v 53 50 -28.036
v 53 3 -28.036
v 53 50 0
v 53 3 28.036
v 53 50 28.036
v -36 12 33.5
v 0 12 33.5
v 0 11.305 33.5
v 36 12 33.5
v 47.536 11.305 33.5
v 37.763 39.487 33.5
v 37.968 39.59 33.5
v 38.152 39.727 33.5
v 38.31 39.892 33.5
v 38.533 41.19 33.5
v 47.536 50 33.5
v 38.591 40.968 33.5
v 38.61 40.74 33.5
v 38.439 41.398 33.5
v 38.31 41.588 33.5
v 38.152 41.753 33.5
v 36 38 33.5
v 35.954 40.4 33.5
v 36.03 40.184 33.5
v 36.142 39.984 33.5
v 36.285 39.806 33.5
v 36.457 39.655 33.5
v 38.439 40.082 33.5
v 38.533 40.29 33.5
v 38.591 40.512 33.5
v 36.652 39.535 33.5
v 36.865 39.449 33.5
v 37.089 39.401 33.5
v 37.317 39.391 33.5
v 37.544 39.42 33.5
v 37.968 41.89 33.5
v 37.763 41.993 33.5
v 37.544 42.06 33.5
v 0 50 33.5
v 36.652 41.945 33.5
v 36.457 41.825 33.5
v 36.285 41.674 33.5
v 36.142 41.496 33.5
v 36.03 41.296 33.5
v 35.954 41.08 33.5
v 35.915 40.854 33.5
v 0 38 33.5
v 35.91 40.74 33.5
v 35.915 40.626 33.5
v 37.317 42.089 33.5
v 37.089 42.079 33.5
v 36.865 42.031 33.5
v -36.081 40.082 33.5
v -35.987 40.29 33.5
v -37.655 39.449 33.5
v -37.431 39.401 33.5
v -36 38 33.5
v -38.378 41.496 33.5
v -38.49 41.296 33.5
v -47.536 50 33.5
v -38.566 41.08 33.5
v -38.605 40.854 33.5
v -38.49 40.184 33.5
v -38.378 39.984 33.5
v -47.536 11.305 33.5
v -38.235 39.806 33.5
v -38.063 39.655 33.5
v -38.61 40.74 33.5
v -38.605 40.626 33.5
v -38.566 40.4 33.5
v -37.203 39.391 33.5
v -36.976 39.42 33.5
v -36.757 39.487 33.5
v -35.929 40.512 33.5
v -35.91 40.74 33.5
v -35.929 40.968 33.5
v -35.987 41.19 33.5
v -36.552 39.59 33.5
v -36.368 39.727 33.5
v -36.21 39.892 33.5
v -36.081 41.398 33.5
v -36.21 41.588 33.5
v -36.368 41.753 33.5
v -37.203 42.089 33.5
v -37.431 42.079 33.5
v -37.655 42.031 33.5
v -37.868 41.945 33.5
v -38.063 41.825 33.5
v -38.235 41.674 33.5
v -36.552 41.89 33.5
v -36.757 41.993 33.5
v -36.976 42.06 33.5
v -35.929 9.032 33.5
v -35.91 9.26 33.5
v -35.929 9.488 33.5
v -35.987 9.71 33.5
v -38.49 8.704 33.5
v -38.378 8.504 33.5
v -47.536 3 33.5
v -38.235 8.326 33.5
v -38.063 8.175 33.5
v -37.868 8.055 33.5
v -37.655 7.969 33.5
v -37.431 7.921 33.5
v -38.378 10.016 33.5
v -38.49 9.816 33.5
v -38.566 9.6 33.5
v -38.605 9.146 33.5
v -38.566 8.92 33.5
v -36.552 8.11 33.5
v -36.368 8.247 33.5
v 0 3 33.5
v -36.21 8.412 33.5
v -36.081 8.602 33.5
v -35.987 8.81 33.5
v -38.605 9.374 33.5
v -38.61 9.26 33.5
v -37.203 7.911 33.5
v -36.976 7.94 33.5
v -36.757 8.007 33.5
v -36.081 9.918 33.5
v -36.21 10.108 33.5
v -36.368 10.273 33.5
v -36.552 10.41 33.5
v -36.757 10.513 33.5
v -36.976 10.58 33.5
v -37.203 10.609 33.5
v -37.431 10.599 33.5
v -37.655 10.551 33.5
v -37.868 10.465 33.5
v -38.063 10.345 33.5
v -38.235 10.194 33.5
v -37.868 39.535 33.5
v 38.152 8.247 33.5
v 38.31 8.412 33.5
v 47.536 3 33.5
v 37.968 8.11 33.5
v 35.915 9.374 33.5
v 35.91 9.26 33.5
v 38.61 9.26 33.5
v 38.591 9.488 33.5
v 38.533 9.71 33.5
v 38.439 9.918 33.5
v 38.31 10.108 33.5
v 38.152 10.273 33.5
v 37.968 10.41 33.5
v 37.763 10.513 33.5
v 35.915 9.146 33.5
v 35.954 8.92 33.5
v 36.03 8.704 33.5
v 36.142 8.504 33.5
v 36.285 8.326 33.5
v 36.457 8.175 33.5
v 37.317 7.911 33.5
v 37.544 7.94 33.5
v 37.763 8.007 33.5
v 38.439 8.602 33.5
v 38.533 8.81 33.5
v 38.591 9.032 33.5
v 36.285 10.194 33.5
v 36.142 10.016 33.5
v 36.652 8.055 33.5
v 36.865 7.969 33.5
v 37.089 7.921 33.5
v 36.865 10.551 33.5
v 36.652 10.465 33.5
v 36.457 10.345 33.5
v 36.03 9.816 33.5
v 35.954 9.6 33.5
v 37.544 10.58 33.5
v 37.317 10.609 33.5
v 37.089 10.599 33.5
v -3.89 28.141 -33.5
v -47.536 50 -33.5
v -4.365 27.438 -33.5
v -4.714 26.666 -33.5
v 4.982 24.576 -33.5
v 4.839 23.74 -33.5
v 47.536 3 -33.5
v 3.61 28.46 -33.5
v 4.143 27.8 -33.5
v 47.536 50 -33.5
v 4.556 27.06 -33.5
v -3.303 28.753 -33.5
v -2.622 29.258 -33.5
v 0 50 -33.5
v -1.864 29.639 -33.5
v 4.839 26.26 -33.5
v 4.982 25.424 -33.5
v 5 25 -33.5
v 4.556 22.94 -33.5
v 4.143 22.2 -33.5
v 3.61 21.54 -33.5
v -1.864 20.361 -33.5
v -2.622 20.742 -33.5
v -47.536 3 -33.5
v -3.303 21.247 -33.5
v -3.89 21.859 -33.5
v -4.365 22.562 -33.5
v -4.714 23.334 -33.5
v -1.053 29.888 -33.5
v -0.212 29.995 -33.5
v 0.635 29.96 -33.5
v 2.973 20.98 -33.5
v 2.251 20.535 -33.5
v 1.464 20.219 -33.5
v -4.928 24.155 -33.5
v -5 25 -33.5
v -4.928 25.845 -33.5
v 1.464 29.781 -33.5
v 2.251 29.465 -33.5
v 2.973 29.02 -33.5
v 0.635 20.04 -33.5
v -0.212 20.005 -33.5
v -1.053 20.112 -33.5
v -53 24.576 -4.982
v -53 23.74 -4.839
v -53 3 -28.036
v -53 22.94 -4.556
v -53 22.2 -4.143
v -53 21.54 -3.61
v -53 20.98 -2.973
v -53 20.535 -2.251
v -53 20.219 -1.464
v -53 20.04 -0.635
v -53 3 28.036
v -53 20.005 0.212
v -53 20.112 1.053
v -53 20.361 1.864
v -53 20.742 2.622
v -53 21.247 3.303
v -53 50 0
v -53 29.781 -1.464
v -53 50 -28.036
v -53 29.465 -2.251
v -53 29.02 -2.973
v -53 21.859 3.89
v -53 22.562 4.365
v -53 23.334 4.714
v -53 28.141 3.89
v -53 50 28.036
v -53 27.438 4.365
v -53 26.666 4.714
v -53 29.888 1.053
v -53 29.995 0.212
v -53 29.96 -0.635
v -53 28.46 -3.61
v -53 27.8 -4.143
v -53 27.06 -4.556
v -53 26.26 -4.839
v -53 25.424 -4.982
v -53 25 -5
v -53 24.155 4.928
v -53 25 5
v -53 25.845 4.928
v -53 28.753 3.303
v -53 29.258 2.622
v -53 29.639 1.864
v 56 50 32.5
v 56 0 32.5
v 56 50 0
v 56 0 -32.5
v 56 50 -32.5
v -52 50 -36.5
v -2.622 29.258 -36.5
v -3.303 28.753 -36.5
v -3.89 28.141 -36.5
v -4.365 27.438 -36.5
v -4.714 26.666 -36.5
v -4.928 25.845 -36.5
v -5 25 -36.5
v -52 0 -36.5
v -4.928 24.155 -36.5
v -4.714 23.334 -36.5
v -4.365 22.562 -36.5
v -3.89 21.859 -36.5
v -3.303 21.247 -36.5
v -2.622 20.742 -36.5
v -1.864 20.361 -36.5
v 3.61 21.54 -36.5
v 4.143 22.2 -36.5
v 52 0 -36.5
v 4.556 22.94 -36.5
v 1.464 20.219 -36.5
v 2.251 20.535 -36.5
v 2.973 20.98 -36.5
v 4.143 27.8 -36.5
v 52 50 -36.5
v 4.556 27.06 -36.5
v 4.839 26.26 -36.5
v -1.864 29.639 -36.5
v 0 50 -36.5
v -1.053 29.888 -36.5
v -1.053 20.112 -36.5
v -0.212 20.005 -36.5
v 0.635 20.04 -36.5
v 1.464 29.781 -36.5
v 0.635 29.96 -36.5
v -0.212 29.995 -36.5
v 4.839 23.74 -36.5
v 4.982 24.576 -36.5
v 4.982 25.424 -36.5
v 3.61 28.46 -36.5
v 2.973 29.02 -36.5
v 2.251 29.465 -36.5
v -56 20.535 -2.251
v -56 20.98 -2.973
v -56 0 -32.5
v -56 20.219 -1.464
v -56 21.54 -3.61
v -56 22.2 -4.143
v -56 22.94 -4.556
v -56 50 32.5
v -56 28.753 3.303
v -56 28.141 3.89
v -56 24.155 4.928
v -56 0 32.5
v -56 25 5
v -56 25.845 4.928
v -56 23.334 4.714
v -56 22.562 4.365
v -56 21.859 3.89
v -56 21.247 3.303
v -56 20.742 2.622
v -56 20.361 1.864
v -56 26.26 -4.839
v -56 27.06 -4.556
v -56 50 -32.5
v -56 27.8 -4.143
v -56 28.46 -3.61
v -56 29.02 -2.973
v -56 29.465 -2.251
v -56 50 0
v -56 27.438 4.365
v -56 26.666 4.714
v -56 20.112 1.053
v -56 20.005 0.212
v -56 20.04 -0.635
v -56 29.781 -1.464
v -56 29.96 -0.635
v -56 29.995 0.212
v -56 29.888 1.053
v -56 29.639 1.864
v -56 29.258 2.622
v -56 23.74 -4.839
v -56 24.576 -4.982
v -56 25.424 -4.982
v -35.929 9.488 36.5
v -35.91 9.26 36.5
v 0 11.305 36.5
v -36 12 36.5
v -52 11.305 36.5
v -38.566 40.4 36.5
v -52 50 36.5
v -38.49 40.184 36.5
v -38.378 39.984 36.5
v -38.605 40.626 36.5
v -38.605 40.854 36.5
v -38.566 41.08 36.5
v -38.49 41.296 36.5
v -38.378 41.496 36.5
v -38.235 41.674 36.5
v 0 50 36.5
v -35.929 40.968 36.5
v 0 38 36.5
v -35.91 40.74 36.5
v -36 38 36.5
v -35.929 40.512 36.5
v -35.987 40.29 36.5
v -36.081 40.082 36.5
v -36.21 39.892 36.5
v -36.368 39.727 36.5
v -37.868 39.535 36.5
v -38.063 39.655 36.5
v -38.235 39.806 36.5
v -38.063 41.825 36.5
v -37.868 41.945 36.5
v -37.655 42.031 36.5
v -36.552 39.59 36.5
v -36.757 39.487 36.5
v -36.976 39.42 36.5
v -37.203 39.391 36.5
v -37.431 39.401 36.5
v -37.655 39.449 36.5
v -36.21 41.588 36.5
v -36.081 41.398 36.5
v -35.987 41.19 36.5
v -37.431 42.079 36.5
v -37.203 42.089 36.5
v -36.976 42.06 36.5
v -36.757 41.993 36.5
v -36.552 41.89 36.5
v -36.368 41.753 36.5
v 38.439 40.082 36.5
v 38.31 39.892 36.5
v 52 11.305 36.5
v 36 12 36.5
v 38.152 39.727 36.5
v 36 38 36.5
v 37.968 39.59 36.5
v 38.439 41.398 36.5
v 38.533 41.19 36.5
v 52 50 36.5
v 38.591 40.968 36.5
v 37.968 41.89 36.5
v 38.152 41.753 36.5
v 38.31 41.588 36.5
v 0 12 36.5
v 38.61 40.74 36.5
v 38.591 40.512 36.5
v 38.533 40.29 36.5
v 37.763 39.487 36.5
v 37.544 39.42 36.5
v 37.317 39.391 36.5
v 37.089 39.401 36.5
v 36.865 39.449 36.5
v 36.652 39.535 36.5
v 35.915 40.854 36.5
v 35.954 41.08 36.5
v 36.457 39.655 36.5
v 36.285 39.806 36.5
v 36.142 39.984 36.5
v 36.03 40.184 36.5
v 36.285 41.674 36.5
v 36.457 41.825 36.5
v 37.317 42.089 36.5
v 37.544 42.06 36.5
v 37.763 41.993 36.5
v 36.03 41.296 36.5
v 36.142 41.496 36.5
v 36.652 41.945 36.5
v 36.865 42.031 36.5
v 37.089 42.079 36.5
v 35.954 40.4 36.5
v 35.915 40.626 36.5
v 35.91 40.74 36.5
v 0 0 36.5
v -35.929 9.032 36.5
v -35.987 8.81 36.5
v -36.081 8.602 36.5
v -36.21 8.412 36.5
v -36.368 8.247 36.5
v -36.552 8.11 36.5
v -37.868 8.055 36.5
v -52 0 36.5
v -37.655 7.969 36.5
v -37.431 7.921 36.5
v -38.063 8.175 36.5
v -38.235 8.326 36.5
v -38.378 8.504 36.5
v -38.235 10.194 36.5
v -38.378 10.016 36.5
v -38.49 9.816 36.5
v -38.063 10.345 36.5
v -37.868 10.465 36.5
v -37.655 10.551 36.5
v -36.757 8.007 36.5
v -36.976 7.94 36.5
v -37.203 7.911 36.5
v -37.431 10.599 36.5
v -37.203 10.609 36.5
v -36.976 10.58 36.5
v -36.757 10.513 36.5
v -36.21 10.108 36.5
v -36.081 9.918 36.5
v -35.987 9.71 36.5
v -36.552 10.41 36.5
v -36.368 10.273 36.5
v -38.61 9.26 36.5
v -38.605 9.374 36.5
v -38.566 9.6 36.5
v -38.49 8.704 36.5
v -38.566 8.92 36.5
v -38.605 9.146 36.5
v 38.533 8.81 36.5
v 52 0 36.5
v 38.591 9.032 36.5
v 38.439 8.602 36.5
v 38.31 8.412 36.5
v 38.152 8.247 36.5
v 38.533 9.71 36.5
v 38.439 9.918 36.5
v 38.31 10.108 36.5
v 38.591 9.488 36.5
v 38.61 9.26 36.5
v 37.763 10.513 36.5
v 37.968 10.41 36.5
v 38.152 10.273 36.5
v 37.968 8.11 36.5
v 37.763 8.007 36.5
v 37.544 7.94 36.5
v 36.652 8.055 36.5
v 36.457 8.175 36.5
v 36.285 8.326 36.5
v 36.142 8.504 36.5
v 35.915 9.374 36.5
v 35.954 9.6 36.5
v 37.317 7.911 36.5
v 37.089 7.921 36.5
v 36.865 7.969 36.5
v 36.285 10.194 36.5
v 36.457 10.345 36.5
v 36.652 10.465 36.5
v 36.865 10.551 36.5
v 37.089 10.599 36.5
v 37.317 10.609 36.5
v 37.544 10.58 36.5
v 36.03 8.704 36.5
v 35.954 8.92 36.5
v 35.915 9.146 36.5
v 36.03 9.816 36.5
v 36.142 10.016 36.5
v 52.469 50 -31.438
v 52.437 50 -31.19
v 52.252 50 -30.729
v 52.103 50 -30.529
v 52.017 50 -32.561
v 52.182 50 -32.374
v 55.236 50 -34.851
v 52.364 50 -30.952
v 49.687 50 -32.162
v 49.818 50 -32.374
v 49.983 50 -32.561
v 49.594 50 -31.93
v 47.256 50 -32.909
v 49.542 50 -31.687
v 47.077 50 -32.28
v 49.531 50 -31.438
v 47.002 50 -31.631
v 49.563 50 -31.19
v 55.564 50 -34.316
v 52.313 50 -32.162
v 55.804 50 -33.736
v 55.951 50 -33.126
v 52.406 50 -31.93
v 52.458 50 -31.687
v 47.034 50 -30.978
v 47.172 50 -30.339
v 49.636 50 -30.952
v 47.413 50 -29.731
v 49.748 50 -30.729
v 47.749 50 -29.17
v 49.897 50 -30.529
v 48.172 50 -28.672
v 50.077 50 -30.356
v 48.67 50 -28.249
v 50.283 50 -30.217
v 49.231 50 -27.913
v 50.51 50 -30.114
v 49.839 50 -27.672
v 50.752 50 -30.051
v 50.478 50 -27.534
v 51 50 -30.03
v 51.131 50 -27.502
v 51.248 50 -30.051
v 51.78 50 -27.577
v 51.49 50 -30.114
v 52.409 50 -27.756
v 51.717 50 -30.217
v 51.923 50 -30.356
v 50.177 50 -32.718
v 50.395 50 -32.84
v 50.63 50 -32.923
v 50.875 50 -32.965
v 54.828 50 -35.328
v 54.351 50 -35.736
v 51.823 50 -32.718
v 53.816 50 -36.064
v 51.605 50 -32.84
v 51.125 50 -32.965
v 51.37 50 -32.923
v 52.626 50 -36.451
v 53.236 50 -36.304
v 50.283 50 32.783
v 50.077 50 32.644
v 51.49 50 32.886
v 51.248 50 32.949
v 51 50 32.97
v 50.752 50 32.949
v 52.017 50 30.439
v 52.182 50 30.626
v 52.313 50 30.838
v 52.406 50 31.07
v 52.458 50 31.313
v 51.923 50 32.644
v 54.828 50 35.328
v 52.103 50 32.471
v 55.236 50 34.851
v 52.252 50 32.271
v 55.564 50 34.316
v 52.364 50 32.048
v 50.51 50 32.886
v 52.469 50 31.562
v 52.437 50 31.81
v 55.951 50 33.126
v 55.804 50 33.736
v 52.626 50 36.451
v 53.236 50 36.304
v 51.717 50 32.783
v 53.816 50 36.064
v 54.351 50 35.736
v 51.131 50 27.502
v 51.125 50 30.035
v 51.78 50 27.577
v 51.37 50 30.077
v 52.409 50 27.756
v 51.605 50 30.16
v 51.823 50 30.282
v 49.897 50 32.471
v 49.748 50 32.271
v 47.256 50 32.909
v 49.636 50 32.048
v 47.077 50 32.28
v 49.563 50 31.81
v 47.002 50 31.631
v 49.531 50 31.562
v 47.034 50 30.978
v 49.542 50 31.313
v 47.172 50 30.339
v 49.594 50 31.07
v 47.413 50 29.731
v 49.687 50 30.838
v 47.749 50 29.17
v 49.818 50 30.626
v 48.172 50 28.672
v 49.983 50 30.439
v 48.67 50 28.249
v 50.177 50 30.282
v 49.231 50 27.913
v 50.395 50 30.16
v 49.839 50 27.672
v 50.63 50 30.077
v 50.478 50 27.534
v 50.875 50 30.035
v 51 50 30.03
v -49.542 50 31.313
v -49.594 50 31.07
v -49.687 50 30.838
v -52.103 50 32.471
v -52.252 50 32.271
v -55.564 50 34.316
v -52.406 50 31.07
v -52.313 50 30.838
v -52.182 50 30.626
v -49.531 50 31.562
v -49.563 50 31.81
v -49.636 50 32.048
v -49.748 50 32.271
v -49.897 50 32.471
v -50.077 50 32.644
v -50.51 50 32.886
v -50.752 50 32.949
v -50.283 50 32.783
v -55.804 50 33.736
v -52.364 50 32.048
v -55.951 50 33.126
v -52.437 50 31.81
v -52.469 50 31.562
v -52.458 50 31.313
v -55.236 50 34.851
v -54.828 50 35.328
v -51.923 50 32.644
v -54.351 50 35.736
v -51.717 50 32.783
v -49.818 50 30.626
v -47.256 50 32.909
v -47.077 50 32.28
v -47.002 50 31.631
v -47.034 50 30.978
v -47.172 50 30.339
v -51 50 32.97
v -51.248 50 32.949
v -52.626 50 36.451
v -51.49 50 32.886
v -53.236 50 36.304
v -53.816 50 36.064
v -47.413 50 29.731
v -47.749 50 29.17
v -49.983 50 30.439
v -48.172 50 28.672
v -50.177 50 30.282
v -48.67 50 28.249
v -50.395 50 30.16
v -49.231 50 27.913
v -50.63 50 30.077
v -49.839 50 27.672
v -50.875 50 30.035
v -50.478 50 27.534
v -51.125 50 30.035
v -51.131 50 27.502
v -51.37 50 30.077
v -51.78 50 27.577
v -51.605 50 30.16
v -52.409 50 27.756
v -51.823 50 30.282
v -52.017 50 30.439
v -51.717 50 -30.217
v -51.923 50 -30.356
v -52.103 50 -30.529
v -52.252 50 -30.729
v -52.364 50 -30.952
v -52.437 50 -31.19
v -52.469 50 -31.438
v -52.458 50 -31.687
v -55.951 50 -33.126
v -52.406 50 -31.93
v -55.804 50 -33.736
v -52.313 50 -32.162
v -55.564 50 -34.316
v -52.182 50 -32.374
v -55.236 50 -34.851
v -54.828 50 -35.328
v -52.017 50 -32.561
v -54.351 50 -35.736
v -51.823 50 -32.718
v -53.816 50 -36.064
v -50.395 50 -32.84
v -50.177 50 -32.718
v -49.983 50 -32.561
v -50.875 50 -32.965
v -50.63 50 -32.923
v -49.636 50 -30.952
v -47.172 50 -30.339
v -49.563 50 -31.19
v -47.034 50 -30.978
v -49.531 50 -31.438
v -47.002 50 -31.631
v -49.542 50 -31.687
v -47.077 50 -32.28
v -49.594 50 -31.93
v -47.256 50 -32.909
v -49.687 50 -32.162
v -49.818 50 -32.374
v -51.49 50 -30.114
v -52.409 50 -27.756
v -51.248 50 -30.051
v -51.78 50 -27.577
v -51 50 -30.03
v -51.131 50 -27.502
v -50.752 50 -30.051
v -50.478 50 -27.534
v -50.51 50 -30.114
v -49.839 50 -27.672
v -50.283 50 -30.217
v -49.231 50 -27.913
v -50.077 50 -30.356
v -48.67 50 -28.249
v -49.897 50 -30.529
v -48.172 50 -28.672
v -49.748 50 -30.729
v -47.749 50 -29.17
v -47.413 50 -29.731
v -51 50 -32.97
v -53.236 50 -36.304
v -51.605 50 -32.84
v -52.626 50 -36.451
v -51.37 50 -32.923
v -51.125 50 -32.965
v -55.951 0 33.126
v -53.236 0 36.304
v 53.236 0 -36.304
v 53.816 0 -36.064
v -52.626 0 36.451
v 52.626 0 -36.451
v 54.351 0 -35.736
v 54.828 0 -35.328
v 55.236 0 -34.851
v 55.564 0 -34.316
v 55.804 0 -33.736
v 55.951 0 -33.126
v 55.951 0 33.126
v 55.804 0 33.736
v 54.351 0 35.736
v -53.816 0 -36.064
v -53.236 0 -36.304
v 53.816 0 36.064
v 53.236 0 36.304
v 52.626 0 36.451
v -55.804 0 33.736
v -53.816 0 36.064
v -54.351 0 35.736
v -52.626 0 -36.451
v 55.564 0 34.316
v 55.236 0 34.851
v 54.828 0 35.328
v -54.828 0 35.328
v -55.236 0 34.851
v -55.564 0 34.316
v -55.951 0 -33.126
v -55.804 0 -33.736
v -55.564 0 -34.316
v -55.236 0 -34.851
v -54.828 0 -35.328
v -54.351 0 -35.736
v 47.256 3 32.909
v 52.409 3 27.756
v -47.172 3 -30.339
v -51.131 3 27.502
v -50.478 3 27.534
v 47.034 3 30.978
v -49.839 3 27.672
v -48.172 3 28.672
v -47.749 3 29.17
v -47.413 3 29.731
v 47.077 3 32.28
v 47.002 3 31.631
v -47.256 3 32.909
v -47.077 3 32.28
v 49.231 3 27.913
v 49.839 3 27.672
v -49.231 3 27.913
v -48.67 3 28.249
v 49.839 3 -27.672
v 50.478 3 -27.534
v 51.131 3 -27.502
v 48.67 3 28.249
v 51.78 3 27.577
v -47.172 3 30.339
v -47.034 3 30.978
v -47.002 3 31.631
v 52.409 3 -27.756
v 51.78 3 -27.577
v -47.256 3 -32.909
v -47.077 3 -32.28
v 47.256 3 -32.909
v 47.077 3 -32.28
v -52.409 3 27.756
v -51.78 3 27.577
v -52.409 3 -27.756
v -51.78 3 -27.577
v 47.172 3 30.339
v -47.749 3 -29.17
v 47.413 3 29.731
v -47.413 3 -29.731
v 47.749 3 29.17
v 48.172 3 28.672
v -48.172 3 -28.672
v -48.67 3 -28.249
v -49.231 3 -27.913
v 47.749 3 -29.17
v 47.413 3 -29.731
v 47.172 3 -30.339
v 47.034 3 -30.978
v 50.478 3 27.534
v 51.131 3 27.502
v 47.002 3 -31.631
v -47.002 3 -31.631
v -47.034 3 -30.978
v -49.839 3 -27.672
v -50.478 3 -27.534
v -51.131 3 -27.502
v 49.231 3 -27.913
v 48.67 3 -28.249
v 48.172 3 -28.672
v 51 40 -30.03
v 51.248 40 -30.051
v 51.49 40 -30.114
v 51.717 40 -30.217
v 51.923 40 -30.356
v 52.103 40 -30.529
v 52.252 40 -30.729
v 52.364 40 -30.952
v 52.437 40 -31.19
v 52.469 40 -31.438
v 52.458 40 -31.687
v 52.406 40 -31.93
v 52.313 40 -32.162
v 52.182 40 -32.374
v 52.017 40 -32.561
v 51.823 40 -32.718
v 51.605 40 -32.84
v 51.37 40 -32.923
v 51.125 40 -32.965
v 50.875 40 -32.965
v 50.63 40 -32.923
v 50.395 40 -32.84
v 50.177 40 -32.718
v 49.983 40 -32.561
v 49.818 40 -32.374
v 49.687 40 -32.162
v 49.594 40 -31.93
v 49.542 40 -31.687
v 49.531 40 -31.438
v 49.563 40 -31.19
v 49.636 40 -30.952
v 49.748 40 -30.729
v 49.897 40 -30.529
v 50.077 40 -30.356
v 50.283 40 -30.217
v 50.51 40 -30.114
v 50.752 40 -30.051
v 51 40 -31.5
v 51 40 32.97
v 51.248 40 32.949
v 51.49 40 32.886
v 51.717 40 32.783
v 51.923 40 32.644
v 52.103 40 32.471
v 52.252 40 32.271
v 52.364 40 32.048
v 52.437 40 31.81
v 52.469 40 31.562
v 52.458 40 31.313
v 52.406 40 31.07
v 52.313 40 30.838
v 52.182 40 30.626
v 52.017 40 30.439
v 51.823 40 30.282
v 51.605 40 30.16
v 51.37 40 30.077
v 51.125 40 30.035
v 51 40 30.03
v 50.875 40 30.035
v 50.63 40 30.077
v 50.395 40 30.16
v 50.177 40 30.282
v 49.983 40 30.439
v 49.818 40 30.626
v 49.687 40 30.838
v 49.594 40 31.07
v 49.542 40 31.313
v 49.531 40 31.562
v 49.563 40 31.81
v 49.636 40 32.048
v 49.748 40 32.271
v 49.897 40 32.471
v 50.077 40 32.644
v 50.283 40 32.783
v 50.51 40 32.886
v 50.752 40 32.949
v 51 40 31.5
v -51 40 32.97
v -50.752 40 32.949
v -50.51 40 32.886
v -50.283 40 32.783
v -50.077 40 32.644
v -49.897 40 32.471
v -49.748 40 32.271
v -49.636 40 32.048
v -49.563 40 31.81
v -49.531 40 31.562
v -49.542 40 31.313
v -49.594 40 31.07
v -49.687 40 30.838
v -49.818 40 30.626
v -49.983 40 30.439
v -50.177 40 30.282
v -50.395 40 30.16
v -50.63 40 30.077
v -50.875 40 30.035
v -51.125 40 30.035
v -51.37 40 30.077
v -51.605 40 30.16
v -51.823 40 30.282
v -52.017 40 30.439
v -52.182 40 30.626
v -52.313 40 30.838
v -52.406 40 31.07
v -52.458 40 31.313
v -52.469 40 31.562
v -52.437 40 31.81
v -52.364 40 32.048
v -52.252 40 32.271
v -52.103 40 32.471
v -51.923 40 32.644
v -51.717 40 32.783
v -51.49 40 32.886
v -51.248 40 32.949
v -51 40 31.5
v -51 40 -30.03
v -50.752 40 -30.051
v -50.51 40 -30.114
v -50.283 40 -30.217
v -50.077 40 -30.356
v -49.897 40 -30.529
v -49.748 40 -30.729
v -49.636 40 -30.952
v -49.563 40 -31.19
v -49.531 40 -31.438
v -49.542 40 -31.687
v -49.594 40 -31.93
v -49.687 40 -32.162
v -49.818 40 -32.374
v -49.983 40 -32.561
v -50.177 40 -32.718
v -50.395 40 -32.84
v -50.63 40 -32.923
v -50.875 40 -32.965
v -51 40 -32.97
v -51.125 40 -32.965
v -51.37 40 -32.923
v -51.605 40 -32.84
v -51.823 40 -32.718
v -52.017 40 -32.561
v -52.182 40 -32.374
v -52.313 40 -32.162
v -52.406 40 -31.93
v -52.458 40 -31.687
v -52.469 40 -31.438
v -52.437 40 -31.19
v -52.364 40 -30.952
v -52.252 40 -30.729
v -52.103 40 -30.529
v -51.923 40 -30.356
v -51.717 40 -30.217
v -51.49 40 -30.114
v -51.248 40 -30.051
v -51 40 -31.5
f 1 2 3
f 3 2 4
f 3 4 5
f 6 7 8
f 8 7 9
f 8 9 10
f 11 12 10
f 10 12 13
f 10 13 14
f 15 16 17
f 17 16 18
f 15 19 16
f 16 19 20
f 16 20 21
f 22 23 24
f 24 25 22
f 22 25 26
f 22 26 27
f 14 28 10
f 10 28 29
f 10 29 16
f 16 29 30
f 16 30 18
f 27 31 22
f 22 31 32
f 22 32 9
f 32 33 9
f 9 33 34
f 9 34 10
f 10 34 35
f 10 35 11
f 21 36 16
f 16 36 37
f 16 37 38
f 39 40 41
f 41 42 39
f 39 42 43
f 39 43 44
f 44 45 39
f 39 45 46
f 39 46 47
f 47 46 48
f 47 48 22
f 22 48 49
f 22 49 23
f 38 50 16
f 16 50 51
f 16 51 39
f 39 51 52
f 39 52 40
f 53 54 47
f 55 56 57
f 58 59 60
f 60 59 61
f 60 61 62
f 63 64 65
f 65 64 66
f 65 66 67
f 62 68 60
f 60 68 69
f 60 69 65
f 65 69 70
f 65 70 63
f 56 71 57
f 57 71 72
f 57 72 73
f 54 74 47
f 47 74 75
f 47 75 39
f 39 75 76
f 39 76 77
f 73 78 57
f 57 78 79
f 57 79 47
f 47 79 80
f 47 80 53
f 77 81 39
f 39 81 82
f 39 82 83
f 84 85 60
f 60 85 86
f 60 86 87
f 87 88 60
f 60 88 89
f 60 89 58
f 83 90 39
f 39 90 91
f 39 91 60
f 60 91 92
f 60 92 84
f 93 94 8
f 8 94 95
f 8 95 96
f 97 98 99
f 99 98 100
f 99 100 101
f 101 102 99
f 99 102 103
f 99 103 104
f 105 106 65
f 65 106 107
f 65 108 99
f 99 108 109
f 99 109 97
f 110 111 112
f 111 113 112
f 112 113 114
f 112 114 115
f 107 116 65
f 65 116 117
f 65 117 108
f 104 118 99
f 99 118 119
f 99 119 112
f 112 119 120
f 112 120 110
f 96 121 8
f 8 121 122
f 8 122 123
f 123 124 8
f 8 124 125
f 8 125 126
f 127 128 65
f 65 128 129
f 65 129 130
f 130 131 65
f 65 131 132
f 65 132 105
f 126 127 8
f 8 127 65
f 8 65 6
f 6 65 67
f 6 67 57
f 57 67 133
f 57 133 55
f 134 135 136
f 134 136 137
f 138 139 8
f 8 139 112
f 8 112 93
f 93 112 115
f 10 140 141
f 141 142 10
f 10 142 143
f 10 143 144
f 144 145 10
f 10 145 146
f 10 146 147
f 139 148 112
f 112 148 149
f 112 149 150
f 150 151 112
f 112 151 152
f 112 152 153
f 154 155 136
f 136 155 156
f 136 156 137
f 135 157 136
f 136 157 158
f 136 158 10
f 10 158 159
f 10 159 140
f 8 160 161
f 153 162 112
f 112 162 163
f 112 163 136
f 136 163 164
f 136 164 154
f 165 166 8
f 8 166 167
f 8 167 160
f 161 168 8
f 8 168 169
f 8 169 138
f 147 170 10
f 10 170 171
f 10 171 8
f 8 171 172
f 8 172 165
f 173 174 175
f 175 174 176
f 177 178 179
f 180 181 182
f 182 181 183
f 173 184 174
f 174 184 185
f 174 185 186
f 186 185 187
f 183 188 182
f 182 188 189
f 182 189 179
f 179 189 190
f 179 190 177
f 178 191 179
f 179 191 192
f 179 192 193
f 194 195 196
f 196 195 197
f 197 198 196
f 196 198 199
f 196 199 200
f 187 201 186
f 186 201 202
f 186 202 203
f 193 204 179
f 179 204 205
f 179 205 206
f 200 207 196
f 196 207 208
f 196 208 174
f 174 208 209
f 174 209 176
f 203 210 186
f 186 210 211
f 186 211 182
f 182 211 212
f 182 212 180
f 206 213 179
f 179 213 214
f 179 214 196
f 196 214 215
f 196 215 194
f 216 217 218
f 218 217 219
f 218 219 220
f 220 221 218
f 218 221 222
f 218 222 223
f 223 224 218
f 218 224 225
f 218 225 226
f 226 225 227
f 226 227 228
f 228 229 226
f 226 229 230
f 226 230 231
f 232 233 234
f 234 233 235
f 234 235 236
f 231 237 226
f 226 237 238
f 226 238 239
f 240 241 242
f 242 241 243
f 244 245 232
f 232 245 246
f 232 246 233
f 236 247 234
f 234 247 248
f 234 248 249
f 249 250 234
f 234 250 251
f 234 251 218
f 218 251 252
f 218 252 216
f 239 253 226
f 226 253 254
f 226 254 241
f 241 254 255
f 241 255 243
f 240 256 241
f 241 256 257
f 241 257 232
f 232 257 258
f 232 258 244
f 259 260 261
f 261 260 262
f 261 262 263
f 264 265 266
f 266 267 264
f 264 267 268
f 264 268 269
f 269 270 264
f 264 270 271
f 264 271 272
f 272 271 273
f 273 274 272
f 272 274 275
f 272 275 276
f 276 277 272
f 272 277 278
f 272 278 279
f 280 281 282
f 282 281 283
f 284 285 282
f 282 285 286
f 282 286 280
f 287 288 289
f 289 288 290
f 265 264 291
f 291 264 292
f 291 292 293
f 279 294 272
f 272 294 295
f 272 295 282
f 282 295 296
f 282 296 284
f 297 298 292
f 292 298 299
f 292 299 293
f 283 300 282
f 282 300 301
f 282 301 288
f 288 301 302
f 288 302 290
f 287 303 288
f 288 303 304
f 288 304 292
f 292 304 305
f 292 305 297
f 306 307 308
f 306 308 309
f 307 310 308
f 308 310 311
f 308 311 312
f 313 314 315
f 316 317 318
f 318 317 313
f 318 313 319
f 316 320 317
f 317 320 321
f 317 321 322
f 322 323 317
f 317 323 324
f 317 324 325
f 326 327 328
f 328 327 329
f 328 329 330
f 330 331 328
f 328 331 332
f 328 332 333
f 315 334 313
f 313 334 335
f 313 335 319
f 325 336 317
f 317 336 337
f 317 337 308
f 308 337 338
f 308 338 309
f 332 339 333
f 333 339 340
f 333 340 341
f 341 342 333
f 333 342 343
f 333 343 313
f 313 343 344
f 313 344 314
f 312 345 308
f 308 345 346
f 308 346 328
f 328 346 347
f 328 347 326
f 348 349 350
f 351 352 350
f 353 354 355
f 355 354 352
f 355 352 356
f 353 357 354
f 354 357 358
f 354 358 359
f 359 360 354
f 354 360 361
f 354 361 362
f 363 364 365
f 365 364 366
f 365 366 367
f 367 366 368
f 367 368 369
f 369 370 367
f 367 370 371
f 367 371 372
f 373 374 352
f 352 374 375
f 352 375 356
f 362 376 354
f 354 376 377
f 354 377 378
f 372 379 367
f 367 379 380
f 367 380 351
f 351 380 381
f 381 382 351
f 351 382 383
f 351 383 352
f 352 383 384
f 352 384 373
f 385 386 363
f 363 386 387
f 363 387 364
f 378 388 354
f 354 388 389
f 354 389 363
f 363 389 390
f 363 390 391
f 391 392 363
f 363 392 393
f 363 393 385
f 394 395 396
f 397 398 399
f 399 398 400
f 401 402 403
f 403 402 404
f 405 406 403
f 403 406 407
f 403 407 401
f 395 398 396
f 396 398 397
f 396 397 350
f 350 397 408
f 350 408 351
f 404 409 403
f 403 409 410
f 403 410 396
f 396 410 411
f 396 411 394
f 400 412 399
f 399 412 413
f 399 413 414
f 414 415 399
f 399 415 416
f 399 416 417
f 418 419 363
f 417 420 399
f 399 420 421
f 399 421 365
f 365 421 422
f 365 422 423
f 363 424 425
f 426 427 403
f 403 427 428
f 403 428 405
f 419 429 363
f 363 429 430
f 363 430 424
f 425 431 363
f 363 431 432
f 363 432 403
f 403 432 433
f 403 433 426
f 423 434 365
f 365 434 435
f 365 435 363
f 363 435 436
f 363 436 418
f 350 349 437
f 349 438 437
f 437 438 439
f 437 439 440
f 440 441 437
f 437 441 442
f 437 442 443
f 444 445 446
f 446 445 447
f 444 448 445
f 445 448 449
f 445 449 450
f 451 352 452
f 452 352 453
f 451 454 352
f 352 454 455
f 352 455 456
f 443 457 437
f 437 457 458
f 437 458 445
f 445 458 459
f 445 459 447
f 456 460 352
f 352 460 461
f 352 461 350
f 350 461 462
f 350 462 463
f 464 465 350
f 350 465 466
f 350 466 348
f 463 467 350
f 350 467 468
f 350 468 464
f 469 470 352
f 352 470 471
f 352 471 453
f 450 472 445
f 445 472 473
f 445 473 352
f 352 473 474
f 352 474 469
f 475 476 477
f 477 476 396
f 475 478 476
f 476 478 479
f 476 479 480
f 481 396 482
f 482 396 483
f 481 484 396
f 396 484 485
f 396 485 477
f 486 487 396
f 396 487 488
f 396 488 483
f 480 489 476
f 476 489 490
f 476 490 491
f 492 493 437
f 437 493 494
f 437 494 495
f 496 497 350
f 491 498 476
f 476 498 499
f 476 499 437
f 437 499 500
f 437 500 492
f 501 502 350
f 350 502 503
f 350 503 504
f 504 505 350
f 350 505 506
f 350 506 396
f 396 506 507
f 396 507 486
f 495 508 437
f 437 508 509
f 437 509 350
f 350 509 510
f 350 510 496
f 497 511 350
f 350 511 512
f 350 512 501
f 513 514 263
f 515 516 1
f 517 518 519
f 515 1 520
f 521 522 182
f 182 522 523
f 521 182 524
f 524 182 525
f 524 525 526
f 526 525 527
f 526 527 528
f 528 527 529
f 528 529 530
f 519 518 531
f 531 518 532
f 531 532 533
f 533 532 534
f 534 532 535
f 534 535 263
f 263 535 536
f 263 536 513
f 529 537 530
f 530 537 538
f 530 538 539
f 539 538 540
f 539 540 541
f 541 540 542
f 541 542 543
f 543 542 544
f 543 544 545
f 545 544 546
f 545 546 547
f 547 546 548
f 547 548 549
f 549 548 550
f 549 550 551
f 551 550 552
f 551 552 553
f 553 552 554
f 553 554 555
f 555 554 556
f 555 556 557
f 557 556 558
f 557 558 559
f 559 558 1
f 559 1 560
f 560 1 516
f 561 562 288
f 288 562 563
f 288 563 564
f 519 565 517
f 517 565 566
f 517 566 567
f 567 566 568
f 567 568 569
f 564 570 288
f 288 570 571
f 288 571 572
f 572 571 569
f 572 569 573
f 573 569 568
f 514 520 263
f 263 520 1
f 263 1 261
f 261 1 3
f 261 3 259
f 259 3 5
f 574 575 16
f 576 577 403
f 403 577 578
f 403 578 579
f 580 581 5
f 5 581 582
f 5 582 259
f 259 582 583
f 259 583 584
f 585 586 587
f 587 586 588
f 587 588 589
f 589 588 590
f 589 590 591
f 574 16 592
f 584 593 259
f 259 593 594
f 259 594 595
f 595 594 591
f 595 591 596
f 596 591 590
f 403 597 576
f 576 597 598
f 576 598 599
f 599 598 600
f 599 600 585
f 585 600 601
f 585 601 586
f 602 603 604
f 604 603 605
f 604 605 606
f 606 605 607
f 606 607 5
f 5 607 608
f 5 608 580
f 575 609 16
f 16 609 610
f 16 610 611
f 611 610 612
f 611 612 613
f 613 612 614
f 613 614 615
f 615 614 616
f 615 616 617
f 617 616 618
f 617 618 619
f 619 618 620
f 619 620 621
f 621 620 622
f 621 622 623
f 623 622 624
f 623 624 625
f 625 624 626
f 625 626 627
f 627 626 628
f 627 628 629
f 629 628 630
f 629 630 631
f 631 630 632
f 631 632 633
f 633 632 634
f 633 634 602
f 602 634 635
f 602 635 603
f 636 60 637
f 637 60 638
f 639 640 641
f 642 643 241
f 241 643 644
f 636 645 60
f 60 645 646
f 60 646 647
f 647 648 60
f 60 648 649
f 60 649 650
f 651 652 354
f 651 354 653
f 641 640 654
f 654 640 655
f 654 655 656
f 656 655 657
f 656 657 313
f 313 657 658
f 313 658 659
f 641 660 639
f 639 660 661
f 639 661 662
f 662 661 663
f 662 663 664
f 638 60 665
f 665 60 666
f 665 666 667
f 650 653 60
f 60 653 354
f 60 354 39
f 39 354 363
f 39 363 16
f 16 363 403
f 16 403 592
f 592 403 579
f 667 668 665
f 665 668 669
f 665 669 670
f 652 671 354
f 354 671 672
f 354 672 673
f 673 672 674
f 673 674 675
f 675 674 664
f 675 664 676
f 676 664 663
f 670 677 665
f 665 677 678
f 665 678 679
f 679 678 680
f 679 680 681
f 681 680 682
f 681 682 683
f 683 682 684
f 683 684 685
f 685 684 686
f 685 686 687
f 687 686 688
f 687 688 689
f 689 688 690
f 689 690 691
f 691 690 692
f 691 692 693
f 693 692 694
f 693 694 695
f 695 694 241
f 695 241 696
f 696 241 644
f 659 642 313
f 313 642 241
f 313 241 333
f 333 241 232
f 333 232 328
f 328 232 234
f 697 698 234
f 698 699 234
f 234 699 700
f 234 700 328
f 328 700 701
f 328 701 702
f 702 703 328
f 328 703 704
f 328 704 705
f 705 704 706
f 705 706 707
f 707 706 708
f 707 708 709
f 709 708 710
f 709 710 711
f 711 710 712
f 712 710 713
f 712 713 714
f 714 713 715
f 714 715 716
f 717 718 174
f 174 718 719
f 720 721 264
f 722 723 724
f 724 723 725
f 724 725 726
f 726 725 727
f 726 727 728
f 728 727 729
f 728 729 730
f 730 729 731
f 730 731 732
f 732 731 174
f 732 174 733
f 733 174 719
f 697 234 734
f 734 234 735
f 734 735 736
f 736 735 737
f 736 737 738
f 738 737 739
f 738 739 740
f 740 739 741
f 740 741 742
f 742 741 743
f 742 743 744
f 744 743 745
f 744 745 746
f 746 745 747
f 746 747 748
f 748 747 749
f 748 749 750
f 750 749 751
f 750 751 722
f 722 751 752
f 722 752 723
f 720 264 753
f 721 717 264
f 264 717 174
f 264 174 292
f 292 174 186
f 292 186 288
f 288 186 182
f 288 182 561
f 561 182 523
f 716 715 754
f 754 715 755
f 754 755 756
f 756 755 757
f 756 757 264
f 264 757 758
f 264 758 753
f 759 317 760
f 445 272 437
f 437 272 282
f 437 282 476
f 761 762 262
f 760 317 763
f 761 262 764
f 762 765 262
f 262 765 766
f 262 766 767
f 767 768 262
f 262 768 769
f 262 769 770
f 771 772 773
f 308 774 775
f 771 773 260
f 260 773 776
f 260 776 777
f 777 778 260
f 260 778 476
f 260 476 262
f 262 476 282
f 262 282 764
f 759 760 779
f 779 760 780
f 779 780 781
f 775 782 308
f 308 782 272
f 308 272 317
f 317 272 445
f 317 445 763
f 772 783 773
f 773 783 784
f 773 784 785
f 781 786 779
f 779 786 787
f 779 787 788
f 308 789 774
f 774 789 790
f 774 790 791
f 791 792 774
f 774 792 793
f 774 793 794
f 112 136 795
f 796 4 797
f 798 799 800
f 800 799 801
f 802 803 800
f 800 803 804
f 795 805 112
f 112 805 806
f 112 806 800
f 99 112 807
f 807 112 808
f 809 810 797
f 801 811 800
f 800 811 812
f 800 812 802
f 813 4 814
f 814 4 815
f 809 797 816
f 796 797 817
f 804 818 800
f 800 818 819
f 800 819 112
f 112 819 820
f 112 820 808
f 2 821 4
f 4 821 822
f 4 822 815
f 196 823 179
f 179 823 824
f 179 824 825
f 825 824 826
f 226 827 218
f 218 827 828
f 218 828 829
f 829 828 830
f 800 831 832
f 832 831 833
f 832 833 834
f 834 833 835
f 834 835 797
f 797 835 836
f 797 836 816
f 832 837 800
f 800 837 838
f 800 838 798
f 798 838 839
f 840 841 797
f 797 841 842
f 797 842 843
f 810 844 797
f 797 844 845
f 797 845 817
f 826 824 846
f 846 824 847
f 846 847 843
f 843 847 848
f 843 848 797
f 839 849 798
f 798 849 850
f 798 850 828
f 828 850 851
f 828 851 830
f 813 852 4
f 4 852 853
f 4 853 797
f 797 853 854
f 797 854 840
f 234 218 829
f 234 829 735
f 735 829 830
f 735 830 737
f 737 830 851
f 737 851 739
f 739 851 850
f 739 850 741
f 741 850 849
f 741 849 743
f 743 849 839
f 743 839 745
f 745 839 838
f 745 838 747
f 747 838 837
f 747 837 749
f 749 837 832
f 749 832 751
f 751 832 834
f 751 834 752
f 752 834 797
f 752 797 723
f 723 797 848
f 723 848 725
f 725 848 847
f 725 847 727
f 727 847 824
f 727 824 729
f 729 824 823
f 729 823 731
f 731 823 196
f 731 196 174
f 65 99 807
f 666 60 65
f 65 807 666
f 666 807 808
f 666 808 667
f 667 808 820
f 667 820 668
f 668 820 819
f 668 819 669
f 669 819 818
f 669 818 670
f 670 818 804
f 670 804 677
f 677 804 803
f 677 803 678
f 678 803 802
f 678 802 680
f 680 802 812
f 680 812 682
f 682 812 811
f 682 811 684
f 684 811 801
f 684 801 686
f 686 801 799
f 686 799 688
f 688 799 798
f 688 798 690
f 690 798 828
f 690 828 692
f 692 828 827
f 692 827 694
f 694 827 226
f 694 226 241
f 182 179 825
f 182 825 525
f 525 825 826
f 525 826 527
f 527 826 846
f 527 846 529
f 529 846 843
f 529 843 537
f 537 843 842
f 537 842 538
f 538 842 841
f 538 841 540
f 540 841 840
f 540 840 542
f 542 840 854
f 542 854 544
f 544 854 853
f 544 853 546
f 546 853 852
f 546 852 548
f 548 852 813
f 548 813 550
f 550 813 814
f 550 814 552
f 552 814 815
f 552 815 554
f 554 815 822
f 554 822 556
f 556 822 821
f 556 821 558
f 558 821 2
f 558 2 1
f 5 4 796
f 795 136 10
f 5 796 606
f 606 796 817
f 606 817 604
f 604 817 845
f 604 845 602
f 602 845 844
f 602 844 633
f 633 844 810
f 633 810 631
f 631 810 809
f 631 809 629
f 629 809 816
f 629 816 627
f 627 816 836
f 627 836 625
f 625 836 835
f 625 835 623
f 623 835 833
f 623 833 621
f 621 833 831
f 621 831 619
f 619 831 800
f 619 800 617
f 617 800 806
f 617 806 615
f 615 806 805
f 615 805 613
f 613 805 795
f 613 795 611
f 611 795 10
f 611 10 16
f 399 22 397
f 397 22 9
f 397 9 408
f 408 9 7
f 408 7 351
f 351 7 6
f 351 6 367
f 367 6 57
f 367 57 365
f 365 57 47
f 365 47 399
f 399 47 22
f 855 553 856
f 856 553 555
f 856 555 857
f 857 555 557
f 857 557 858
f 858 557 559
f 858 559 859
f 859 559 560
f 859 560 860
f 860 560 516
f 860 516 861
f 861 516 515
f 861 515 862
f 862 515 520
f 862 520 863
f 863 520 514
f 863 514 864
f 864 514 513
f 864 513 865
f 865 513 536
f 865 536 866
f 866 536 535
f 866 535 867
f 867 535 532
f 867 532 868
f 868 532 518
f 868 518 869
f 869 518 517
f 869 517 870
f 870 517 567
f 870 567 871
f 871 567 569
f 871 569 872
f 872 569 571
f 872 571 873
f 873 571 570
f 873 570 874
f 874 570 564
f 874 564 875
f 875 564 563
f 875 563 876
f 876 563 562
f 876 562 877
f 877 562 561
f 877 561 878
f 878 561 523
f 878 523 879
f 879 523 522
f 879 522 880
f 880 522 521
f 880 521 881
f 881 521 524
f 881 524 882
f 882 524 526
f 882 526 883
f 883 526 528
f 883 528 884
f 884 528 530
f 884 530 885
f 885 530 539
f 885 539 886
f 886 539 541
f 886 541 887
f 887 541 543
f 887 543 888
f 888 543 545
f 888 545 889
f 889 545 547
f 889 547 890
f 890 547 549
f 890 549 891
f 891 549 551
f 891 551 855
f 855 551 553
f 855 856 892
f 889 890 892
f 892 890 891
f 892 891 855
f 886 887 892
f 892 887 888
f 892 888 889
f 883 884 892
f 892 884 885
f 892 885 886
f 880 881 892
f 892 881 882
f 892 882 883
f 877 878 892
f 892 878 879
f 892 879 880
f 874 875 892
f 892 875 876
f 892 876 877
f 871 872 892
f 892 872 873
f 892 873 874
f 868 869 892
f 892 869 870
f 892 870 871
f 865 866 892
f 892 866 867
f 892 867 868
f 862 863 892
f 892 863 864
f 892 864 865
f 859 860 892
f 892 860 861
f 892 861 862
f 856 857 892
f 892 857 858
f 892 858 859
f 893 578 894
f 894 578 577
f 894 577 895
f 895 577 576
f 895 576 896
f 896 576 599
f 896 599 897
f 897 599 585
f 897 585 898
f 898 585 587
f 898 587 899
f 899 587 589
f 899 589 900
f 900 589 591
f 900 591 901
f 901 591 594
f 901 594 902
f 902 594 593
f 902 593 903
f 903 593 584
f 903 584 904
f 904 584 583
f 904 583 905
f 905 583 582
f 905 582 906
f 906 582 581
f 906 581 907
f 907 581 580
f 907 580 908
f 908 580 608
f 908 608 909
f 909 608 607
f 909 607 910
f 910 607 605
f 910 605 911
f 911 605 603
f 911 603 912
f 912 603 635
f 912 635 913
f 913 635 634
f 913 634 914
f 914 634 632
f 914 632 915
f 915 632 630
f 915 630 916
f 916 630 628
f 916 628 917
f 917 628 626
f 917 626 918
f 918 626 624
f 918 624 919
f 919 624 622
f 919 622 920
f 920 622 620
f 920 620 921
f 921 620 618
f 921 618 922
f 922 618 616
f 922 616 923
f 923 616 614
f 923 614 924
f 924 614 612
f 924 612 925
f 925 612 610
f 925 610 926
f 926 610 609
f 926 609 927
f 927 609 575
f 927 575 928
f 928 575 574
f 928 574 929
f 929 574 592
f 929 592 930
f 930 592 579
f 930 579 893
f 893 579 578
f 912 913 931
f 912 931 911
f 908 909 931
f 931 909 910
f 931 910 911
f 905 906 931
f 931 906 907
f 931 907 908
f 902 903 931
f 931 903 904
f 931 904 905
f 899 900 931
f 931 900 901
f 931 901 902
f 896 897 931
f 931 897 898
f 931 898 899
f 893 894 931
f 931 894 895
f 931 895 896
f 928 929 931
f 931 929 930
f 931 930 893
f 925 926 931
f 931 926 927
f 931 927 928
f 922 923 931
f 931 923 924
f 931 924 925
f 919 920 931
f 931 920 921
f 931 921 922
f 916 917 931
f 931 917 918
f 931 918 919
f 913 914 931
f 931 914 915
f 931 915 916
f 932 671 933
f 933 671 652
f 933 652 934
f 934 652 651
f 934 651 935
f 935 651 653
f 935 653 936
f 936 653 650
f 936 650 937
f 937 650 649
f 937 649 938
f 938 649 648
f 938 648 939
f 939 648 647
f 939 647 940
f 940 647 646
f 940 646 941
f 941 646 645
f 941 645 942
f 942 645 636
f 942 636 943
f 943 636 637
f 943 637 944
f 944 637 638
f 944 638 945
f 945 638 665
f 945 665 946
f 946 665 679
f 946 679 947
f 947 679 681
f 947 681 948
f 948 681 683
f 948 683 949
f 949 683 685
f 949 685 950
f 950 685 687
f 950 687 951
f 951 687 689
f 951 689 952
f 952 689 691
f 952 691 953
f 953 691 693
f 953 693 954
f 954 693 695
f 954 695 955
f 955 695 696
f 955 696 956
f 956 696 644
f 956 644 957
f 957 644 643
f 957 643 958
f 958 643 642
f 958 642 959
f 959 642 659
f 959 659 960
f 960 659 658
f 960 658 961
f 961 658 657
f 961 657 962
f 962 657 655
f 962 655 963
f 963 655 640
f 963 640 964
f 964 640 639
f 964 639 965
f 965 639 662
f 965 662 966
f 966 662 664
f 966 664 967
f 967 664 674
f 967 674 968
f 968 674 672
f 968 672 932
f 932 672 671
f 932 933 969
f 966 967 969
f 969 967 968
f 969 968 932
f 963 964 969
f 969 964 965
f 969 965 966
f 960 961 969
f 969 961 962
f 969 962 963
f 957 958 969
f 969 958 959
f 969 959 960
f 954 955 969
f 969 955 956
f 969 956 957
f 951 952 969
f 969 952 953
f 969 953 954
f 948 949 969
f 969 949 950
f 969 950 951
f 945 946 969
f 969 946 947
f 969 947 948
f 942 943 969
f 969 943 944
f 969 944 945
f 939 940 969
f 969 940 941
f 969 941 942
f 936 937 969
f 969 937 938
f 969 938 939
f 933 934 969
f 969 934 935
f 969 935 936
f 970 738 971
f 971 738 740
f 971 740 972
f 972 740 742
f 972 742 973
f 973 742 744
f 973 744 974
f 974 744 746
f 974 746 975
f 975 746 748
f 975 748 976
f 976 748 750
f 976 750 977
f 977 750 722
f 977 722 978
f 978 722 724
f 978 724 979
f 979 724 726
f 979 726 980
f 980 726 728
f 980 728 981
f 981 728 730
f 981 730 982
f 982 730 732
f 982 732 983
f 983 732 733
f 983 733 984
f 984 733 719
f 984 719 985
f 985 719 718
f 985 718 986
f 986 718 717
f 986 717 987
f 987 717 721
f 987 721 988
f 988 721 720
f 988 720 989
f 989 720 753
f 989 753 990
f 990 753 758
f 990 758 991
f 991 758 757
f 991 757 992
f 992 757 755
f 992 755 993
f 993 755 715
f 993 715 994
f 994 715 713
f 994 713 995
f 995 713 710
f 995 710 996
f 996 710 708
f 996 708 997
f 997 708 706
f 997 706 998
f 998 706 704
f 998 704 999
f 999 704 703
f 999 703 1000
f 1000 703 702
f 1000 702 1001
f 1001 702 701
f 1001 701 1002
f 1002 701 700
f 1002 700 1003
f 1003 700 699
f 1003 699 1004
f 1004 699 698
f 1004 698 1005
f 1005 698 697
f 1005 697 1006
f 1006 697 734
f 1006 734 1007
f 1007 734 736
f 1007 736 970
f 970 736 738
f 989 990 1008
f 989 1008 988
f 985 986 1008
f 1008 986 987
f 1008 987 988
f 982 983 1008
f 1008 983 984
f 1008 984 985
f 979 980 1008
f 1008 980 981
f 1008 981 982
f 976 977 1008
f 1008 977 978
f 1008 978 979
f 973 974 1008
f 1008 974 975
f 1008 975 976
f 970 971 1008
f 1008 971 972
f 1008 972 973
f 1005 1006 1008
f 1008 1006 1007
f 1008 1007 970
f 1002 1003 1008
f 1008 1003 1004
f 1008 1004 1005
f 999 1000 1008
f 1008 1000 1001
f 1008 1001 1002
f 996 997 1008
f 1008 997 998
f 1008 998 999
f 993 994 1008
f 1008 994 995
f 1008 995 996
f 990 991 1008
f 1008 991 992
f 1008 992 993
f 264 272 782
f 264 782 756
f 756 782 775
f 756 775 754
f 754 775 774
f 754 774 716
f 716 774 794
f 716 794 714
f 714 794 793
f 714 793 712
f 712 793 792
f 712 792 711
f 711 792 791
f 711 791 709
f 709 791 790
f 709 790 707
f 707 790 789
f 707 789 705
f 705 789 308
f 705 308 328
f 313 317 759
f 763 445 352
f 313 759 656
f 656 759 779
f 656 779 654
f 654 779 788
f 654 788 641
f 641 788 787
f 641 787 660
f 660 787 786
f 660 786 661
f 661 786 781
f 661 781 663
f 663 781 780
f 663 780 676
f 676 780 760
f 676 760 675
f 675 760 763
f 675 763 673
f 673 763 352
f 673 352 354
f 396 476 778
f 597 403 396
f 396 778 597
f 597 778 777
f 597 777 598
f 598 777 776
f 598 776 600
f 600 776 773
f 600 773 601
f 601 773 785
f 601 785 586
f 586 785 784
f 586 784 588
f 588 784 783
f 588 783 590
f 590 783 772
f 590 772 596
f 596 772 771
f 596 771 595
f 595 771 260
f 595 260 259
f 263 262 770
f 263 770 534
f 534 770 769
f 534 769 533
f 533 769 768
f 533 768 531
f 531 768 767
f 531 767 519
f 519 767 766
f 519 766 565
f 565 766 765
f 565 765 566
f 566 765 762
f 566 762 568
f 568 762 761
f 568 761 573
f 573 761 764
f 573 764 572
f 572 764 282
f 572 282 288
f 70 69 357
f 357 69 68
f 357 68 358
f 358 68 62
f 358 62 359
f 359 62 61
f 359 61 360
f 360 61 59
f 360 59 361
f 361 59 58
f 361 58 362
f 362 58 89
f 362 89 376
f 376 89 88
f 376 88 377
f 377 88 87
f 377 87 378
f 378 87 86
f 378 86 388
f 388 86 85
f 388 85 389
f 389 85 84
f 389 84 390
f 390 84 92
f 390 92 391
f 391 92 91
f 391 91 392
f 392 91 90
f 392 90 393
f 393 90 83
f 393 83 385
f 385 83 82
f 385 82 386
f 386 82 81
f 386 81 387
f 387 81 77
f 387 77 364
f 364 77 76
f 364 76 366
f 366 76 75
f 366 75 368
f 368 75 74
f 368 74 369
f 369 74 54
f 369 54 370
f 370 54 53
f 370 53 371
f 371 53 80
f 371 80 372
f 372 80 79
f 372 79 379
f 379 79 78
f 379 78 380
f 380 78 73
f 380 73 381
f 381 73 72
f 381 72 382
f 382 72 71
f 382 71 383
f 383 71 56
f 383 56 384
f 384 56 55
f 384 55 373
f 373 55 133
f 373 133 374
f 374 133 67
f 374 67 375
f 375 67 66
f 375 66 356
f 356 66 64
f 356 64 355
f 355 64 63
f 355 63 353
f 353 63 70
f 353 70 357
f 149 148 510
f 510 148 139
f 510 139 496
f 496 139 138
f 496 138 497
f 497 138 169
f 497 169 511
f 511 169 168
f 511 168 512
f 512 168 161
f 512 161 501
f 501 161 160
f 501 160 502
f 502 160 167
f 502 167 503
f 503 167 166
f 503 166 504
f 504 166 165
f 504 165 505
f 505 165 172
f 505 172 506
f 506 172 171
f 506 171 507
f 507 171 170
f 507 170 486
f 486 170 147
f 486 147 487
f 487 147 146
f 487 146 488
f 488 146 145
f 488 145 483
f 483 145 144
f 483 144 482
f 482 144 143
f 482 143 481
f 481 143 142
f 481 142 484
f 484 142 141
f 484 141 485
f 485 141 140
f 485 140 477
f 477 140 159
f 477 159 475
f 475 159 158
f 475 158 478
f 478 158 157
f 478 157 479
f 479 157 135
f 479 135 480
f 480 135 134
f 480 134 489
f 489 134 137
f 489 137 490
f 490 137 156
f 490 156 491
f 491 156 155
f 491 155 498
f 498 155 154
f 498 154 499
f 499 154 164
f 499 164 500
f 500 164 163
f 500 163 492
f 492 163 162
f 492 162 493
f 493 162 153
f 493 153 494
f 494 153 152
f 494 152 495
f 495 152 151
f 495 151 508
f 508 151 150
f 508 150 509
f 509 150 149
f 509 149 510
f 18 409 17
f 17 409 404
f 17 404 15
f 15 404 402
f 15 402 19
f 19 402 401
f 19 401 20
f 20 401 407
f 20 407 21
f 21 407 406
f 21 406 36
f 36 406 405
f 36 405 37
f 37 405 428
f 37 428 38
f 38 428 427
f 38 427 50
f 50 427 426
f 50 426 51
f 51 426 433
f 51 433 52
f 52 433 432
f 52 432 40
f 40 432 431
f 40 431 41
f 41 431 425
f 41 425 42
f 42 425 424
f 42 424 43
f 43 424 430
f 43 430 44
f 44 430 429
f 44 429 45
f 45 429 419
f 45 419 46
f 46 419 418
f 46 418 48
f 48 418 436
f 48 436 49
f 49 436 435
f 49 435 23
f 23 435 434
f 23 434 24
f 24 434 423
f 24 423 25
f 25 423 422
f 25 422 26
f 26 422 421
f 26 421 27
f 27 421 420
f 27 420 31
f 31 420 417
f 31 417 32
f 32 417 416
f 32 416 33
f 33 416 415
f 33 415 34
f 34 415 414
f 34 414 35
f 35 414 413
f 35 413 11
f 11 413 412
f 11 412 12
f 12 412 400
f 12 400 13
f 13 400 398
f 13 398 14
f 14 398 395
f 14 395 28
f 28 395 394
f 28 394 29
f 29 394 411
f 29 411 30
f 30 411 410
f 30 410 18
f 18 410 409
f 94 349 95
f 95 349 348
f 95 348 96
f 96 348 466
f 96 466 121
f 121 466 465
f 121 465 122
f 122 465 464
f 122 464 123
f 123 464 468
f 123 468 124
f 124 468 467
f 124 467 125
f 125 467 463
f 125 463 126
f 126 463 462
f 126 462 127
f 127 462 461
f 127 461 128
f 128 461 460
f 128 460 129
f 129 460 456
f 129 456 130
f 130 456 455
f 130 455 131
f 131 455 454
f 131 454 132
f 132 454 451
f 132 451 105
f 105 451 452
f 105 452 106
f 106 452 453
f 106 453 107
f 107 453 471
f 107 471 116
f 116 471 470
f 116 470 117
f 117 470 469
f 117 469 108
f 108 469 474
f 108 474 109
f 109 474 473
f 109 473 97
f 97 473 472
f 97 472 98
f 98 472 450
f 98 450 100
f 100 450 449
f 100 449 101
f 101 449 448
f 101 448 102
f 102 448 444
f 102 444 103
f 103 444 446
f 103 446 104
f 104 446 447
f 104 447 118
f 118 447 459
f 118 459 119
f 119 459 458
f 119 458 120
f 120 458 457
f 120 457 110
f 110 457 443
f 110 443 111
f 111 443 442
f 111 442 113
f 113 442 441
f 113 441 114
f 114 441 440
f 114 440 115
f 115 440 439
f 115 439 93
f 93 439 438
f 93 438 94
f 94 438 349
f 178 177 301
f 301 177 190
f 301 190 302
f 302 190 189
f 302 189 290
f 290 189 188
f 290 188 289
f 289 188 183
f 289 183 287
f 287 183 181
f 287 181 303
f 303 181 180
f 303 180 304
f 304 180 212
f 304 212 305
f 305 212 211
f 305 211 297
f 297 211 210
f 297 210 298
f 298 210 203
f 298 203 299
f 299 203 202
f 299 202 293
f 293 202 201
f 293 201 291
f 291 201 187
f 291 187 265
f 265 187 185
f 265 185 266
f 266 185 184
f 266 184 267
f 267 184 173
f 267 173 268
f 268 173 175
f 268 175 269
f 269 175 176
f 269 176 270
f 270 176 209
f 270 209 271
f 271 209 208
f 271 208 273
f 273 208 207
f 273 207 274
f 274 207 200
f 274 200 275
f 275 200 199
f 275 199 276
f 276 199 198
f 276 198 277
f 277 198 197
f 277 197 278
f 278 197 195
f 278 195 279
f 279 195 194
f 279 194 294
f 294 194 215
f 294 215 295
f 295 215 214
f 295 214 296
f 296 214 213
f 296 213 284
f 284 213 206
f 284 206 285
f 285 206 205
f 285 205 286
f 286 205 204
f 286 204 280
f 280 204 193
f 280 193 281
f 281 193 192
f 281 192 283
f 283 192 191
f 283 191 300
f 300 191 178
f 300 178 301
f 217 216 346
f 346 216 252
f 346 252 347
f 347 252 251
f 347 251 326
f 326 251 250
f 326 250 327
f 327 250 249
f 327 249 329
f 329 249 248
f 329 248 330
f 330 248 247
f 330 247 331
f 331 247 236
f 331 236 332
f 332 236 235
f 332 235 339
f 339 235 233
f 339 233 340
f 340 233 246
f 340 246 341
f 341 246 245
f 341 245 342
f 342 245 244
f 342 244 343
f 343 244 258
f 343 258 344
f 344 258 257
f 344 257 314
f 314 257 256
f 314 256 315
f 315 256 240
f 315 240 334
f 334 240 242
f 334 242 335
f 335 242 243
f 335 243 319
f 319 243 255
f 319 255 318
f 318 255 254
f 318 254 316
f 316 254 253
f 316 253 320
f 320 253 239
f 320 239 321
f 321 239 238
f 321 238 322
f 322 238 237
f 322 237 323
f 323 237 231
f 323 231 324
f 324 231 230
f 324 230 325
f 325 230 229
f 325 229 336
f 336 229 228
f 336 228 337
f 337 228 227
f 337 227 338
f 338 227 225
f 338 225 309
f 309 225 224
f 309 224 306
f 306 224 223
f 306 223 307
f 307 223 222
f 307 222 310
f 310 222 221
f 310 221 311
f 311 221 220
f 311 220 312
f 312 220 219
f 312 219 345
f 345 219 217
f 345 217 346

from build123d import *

# Parameters (mm, degrees)
SKETCH2_W           = 112
SKETCH2_H           = 73
BOSS_EXTRUDE1_DEPTH = 50
SHELL3_T            = -3
SKETCH5_R           = 4
BOSS_EXTRUDE2_DEPTH = 47.5
CUT_EXTRUDE1_REACH  = 75
SKETCH3_W           = 72
SKETCH3_H           = 26
SKETCH6_R           = 1.47
CUT_EXTRUDE2_DEPTH  = 10
FILLET1_R           = 4
CUT_EXTRUDE3_REACH  = 75
SKETCH7_R           = 1.35
CUT_EXTRUDE4_REACH  = 75
SKETCH8_R           = 5
CUT_EXTRUDE5_REACH  = 114
SKETCH9_R           = 5


with BuildPart() as part:
    # Sketch2 → Boss-Extrude1 (new body)
    with BuildSketch(Plane(origin=(0, 0, 0), x_dir=(1, 0, 0), z_dir=(0, 1, 0))):
        Rectangle(SKETCH2_W, SKETCH2_H)
    extrude(amount=BOSS_EXTRUDE1_DEPTH)

    # Shell3
    shell3_openings = [part.faces().sort_by_distance(p)[0] for p in [
        (0, 50, 0),
    ]]
    offset(amount=SHELL3_T, openings=shell3_openings, kind=Kind.INTERSECTION)

    # Sketch5 → Boss-Extrude2 (add)
    with BuildSketch(Plane(origin=(0, 2.5, 0), x_dir=(1, 0, 0), z_dir=(0, 1, 0))):
        with Locations((-51, 31.5)):
            Circle(SKETCH5_R)
        with Locations((-51, -31.5)):
            Circle(SKETCH5_R)
        with Locations((51, 31.5)):
            Circle(SKETCH5_R)
        with Locations((51, -31.5)):
            Circle(SKETCH5_R)
    extrude(amount=BOSS_EXTRUDE2_DEPTH)

    # Sketch3 → Cut-Extrude1 (cut, up to next)
    with BuildSketch(Plane.XY.offset(36.5), mode=Mode.PRIVATE) as cut_extrude1_sk1:
        with Locations((0, 25)):
            Rectangle(SKETCH3_W, SKETCH3_H)
    cut_extrude1_tool1 = extrude(cut_extrude1_sk1.sketch, amount=-CUT_EXTRUDE1_REACH, mode=Mode.PRIVATE) & part.part
    add(cut_extrude1_tool1.solids().sort_by_distance((0, 25, 36.5))[0], mode=Mode.SUBTRACT)

    # Sketch6 → Cut-Extrude2 (cut)
    with BuildSketch(Plane(origin=(0, 50, 0), x_dir=(1, 0, 0), z_dir=(0, 1, 0))):
        with Locations((51, 31.5)):
            Circle(SKETCH6_R)
        with Locations((51, -31.5)):
            Circle(SKETCH6_R)
        with Locations((-51, -31.5)):
            Circle(SKETCH6_R)
        with Locations((-51, 31.5)):
            Circle(SKETCH6_R)
    extrude(amount=-CUT_EXTRUDE2_DEPTH, mode=Mode.SUBTRACT)

    # Fillet1
    fillet1_edges = [part.edges().sort_by_distance(p)[0] for p in [
        (56, 25, 36.5),
        (-56, 25, 36.5),
        (-56, 25, -36.5),
        (56, 25, -36.5),
    ]]
    fillet(fillet1_edges, radius=FILLET1_R)

    # Sketch7 → Cut-Extrude3 (cut, up to next)
    with BuildSketch(Plane.XY.offset(36.5), mode=Mode.PRIVATE) as cut_extrude3_sk1:
        with Locations((-37.26, 40.74)):
            Circle(SKETCH7_R)
    cut_extrude3_tool1 = extrude(cut_extrude3_sk1.sketch, amount=-CUT_EXTRUDE3_REACH, mode=Mode.PRIVATE) & part.part
    add(cut_extrude3_tool1.solids().sort_by_distance((-37.26, 40.74, 36.5))[0], mode=Mode.SUBTRACT)
    # Sketch7 → Cut-Extrude3 (cut, up to next)
    with BuildSketch(Plane.XY.offset(36.5), mode=Mode.PRIVATE) as cut_extrude3_sk2:
        with Locations((-37.26, 9.26)):
            Circle(SKETCH7_R)
    cut_extrude3_tool2 = extrude(cut_extrude3_sk2.sketch, amount=-CUT_EXTRUDE3_REACH, mode=Mode.PRIVATE) & part.part
    add(cut_extrude3_tool2.solids().sort_by_distance((-37.26, 9.26, 36.5))[0], mode=Mode.SUBTRACT)
    # Sketch7 → Cut-Extrude3 (cut, up to next)
    with BuildSketch(Plane.XY.offset(36.5), mode=Mode.PRIVATE) as cut_extrude3_sk3:
        with Locations((37.26, 40.74)):
            Circle(SKETCH7_R)
    cut_extrude3_tool3 = extrude(cut_extrude3_sk3.sketch, amount=-CUT_EXTRUDE3_REACH, mode=Mode.PRIVATE) & part.part
    add(cut_extrude3_tool3.solids().sort_by_distance((37.26, 40.74, 36.5))[0], mode=Mode.SUBTRACT)
    # Sketch7 → Cut-Extrude3 (cut, up to next)
    with BuildSketch(Plane.XY.offset(36.5), mode=Mode.PRIVATE) as cut_extrude3_sk4:
        with Locations((37.26, 9.26)):
            Circle(SKETCH7_R)
    cut_extrude3_tool4 = extrude(cut_extrude3_sk4.sketch, amount=-CUT_EXTRUDE3_REACH, mode=Mode.PRIVATE) & part.part
    add(cut_extrude3_tool4.solids().sort_by_distance((37.26, 9.26, 36.5))[0], mode=Mode.SUBTRACT)

    # Sketch8 → Cut-Extrude4 (cut, up to next)
    with BuildSketch(Plane(origin=(0, 0, -36.5), x_dir=(-1, 0, 0), z_dir=(0, 0, -1)), mode=Mode.PRIVATE) as cut_extrude4_sk1:
        with Locations((0, 25)):
            Circle(SKETCH8_R)
    cut_extrude4_tool1 = extrude(cut_extrude4_sk1.sketch, amount=-CUT_EXTRUDE4_REACH, mode=Mode.PRIVATE) & part.part
    add(cut_extrude4_tool1.solids().sort_by_distance((0, 25, -36.5))[0], mode=Mode.SUBTRACT)

    # Sketch9 → Cut-Extrude5 (cut, up to next)
    with BuildSketch(Plane.ZY.offset(56), mode=Mode.PRIVATE) as cut_extrude5_sk1:
        with Locations((0, 25)):
            Circle(SKETCH9_R)
    cut_extrude5_tool1 = extrude(cut_extrude5_sk1.sketch, amount=-CUT_EXTRUDE5_REACH, mode=Mode.PRIVATE) & part.part
    add(cut_extrude5_tool1.solids().sort_by_distance((-56, 25, 0))[0], mode=Mode.SUBTRACT)


solid = part.part
